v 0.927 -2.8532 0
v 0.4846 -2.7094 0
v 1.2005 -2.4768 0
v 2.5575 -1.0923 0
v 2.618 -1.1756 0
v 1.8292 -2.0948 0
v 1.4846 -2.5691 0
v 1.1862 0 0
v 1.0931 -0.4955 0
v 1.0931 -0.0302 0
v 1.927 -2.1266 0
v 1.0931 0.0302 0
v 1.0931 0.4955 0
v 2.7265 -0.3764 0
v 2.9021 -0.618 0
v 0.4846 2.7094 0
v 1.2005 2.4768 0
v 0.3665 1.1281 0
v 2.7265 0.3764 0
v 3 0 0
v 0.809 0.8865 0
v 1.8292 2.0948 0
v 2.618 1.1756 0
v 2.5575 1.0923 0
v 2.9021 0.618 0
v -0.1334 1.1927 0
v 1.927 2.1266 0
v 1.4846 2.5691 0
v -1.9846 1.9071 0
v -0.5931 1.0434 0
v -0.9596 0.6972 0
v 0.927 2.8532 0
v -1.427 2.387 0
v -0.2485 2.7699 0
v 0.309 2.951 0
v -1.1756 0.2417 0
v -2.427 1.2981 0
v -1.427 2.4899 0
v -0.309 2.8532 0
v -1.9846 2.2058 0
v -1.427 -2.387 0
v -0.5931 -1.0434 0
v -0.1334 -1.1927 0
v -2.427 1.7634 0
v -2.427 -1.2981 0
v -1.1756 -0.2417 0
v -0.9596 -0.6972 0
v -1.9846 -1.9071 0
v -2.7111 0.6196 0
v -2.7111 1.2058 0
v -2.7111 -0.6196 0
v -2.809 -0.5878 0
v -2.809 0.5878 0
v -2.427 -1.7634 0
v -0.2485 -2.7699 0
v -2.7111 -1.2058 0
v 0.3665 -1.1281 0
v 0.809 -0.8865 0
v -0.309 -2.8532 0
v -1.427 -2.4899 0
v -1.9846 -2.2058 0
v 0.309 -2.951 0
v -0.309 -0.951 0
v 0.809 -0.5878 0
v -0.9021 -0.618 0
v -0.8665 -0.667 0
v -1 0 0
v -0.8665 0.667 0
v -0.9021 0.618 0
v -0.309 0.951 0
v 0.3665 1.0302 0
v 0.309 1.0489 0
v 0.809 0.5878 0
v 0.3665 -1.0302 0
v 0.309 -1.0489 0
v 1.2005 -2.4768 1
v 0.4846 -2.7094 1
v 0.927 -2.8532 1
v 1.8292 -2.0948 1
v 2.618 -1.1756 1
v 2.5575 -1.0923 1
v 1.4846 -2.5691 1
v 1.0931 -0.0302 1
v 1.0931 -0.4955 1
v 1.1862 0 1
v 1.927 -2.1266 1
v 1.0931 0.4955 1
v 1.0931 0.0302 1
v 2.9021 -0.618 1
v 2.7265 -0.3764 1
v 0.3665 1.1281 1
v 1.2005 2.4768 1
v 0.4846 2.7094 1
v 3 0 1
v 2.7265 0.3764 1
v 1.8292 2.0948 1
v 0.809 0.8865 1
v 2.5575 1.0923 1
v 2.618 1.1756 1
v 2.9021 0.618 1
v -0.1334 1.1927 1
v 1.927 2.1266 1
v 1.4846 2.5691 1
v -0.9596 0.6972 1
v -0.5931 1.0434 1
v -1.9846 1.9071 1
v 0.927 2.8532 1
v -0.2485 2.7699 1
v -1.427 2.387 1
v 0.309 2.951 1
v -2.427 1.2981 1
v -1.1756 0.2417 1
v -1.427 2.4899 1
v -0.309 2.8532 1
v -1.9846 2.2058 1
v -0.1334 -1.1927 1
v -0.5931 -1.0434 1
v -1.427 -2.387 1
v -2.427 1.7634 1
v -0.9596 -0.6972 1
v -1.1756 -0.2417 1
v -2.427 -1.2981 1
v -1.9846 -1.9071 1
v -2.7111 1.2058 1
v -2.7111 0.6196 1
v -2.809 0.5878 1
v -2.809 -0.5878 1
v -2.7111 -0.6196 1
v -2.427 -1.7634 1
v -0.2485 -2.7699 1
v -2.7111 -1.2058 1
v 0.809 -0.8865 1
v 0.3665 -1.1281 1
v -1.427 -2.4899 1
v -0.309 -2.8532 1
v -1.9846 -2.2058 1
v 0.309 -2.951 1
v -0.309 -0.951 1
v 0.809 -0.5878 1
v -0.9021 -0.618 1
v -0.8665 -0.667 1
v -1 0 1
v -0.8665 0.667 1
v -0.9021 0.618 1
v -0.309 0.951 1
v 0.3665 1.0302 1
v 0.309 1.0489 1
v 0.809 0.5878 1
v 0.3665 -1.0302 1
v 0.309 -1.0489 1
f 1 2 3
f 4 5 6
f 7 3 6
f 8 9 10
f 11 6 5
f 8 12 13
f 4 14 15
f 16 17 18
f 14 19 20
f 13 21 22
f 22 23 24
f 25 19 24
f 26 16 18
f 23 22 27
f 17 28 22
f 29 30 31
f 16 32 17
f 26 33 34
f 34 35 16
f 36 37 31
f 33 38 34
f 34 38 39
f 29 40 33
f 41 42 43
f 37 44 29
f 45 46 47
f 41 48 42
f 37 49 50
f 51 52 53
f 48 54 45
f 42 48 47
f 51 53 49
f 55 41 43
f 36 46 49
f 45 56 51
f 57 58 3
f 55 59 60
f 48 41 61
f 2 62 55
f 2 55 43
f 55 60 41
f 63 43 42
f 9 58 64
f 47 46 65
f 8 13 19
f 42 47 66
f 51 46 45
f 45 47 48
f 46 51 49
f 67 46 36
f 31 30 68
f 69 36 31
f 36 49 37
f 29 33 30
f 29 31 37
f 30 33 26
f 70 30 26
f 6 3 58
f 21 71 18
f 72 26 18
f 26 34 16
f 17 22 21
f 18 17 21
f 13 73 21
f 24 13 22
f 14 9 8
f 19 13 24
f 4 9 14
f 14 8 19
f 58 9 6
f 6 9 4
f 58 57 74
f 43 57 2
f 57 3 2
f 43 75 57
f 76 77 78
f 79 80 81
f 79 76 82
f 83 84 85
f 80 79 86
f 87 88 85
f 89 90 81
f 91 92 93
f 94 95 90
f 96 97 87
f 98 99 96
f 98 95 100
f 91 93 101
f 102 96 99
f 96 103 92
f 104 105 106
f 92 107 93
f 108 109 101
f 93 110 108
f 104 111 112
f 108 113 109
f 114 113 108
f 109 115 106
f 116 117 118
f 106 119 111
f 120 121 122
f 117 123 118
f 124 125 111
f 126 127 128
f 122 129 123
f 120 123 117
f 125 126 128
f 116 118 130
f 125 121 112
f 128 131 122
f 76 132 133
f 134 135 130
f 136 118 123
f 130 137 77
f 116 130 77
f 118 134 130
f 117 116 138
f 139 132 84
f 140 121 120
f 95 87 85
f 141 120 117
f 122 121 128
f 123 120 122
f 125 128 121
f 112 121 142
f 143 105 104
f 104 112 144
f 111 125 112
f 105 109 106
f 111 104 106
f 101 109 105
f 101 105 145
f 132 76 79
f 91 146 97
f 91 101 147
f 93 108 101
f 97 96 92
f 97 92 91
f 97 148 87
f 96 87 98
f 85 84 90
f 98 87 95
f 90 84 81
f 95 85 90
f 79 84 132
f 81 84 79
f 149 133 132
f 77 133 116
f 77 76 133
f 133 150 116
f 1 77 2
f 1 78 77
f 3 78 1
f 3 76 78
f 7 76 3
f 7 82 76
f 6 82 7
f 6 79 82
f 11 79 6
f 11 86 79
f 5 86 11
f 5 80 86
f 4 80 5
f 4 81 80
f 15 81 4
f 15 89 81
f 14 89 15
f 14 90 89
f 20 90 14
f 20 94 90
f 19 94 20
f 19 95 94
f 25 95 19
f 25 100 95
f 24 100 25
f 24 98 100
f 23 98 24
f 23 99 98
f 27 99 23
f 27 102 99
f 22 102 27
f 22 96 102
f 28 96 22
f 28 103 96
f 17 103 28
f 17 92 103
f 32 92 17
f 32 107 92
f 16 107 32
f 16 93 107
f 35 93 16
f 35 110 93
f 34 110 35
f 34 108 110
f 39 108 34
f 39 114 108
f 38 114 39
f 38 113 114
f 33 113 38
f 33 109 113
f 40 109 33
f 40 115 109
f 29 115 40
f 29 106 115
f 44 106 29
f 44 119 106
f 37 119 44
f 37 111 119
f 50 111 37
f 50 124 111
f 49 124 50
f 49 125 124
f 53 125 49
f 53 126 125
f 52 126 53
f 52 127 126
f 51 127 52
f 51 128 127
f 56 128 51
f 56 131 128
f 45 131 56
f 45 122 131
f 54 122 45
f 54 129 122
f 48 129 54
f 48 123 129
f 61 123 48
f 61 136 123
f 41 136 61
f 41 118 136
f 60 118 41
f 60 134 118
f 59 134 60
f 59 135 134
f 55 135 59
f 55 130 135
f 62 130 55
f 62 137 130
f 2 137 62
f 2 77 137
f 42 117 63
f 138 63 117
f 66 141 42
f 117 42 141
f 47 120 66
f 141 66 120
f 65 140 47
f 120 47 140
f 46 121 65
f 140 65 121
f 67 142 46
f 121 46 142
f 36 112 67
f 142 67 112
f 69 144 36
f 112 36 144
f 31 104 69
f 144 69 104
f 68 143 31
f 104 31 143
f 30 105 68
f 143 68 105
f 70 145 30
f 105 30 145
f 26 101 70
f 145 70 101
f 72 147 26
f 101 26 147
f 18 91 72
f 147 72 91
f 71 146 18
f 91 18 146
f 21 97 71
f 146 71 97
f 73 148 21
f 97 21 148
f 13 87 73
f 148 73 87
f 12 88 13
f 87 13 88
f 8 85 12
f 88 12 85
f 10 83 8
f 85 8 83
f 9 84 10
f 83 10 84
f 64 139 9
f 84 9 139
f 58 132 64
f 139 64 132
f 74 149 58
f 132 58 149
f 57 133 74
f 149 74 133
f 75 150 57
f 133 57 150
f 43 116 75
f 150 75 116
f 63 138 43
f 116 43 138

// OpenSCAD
module bezier_curve(radius, h, num_points) {
  linear_extrude(height = h)
  for (i = [0:num_points-1]) {
    angle = i * 360 / num_points;
    x = radius * cos(angle);
    y = radius * sin(angle);
    translate([x, y, 0]) {
      circle(r = 1);
    }
  }
}

bezier_curve(radius = 2, h = 1, num_points = 20);
